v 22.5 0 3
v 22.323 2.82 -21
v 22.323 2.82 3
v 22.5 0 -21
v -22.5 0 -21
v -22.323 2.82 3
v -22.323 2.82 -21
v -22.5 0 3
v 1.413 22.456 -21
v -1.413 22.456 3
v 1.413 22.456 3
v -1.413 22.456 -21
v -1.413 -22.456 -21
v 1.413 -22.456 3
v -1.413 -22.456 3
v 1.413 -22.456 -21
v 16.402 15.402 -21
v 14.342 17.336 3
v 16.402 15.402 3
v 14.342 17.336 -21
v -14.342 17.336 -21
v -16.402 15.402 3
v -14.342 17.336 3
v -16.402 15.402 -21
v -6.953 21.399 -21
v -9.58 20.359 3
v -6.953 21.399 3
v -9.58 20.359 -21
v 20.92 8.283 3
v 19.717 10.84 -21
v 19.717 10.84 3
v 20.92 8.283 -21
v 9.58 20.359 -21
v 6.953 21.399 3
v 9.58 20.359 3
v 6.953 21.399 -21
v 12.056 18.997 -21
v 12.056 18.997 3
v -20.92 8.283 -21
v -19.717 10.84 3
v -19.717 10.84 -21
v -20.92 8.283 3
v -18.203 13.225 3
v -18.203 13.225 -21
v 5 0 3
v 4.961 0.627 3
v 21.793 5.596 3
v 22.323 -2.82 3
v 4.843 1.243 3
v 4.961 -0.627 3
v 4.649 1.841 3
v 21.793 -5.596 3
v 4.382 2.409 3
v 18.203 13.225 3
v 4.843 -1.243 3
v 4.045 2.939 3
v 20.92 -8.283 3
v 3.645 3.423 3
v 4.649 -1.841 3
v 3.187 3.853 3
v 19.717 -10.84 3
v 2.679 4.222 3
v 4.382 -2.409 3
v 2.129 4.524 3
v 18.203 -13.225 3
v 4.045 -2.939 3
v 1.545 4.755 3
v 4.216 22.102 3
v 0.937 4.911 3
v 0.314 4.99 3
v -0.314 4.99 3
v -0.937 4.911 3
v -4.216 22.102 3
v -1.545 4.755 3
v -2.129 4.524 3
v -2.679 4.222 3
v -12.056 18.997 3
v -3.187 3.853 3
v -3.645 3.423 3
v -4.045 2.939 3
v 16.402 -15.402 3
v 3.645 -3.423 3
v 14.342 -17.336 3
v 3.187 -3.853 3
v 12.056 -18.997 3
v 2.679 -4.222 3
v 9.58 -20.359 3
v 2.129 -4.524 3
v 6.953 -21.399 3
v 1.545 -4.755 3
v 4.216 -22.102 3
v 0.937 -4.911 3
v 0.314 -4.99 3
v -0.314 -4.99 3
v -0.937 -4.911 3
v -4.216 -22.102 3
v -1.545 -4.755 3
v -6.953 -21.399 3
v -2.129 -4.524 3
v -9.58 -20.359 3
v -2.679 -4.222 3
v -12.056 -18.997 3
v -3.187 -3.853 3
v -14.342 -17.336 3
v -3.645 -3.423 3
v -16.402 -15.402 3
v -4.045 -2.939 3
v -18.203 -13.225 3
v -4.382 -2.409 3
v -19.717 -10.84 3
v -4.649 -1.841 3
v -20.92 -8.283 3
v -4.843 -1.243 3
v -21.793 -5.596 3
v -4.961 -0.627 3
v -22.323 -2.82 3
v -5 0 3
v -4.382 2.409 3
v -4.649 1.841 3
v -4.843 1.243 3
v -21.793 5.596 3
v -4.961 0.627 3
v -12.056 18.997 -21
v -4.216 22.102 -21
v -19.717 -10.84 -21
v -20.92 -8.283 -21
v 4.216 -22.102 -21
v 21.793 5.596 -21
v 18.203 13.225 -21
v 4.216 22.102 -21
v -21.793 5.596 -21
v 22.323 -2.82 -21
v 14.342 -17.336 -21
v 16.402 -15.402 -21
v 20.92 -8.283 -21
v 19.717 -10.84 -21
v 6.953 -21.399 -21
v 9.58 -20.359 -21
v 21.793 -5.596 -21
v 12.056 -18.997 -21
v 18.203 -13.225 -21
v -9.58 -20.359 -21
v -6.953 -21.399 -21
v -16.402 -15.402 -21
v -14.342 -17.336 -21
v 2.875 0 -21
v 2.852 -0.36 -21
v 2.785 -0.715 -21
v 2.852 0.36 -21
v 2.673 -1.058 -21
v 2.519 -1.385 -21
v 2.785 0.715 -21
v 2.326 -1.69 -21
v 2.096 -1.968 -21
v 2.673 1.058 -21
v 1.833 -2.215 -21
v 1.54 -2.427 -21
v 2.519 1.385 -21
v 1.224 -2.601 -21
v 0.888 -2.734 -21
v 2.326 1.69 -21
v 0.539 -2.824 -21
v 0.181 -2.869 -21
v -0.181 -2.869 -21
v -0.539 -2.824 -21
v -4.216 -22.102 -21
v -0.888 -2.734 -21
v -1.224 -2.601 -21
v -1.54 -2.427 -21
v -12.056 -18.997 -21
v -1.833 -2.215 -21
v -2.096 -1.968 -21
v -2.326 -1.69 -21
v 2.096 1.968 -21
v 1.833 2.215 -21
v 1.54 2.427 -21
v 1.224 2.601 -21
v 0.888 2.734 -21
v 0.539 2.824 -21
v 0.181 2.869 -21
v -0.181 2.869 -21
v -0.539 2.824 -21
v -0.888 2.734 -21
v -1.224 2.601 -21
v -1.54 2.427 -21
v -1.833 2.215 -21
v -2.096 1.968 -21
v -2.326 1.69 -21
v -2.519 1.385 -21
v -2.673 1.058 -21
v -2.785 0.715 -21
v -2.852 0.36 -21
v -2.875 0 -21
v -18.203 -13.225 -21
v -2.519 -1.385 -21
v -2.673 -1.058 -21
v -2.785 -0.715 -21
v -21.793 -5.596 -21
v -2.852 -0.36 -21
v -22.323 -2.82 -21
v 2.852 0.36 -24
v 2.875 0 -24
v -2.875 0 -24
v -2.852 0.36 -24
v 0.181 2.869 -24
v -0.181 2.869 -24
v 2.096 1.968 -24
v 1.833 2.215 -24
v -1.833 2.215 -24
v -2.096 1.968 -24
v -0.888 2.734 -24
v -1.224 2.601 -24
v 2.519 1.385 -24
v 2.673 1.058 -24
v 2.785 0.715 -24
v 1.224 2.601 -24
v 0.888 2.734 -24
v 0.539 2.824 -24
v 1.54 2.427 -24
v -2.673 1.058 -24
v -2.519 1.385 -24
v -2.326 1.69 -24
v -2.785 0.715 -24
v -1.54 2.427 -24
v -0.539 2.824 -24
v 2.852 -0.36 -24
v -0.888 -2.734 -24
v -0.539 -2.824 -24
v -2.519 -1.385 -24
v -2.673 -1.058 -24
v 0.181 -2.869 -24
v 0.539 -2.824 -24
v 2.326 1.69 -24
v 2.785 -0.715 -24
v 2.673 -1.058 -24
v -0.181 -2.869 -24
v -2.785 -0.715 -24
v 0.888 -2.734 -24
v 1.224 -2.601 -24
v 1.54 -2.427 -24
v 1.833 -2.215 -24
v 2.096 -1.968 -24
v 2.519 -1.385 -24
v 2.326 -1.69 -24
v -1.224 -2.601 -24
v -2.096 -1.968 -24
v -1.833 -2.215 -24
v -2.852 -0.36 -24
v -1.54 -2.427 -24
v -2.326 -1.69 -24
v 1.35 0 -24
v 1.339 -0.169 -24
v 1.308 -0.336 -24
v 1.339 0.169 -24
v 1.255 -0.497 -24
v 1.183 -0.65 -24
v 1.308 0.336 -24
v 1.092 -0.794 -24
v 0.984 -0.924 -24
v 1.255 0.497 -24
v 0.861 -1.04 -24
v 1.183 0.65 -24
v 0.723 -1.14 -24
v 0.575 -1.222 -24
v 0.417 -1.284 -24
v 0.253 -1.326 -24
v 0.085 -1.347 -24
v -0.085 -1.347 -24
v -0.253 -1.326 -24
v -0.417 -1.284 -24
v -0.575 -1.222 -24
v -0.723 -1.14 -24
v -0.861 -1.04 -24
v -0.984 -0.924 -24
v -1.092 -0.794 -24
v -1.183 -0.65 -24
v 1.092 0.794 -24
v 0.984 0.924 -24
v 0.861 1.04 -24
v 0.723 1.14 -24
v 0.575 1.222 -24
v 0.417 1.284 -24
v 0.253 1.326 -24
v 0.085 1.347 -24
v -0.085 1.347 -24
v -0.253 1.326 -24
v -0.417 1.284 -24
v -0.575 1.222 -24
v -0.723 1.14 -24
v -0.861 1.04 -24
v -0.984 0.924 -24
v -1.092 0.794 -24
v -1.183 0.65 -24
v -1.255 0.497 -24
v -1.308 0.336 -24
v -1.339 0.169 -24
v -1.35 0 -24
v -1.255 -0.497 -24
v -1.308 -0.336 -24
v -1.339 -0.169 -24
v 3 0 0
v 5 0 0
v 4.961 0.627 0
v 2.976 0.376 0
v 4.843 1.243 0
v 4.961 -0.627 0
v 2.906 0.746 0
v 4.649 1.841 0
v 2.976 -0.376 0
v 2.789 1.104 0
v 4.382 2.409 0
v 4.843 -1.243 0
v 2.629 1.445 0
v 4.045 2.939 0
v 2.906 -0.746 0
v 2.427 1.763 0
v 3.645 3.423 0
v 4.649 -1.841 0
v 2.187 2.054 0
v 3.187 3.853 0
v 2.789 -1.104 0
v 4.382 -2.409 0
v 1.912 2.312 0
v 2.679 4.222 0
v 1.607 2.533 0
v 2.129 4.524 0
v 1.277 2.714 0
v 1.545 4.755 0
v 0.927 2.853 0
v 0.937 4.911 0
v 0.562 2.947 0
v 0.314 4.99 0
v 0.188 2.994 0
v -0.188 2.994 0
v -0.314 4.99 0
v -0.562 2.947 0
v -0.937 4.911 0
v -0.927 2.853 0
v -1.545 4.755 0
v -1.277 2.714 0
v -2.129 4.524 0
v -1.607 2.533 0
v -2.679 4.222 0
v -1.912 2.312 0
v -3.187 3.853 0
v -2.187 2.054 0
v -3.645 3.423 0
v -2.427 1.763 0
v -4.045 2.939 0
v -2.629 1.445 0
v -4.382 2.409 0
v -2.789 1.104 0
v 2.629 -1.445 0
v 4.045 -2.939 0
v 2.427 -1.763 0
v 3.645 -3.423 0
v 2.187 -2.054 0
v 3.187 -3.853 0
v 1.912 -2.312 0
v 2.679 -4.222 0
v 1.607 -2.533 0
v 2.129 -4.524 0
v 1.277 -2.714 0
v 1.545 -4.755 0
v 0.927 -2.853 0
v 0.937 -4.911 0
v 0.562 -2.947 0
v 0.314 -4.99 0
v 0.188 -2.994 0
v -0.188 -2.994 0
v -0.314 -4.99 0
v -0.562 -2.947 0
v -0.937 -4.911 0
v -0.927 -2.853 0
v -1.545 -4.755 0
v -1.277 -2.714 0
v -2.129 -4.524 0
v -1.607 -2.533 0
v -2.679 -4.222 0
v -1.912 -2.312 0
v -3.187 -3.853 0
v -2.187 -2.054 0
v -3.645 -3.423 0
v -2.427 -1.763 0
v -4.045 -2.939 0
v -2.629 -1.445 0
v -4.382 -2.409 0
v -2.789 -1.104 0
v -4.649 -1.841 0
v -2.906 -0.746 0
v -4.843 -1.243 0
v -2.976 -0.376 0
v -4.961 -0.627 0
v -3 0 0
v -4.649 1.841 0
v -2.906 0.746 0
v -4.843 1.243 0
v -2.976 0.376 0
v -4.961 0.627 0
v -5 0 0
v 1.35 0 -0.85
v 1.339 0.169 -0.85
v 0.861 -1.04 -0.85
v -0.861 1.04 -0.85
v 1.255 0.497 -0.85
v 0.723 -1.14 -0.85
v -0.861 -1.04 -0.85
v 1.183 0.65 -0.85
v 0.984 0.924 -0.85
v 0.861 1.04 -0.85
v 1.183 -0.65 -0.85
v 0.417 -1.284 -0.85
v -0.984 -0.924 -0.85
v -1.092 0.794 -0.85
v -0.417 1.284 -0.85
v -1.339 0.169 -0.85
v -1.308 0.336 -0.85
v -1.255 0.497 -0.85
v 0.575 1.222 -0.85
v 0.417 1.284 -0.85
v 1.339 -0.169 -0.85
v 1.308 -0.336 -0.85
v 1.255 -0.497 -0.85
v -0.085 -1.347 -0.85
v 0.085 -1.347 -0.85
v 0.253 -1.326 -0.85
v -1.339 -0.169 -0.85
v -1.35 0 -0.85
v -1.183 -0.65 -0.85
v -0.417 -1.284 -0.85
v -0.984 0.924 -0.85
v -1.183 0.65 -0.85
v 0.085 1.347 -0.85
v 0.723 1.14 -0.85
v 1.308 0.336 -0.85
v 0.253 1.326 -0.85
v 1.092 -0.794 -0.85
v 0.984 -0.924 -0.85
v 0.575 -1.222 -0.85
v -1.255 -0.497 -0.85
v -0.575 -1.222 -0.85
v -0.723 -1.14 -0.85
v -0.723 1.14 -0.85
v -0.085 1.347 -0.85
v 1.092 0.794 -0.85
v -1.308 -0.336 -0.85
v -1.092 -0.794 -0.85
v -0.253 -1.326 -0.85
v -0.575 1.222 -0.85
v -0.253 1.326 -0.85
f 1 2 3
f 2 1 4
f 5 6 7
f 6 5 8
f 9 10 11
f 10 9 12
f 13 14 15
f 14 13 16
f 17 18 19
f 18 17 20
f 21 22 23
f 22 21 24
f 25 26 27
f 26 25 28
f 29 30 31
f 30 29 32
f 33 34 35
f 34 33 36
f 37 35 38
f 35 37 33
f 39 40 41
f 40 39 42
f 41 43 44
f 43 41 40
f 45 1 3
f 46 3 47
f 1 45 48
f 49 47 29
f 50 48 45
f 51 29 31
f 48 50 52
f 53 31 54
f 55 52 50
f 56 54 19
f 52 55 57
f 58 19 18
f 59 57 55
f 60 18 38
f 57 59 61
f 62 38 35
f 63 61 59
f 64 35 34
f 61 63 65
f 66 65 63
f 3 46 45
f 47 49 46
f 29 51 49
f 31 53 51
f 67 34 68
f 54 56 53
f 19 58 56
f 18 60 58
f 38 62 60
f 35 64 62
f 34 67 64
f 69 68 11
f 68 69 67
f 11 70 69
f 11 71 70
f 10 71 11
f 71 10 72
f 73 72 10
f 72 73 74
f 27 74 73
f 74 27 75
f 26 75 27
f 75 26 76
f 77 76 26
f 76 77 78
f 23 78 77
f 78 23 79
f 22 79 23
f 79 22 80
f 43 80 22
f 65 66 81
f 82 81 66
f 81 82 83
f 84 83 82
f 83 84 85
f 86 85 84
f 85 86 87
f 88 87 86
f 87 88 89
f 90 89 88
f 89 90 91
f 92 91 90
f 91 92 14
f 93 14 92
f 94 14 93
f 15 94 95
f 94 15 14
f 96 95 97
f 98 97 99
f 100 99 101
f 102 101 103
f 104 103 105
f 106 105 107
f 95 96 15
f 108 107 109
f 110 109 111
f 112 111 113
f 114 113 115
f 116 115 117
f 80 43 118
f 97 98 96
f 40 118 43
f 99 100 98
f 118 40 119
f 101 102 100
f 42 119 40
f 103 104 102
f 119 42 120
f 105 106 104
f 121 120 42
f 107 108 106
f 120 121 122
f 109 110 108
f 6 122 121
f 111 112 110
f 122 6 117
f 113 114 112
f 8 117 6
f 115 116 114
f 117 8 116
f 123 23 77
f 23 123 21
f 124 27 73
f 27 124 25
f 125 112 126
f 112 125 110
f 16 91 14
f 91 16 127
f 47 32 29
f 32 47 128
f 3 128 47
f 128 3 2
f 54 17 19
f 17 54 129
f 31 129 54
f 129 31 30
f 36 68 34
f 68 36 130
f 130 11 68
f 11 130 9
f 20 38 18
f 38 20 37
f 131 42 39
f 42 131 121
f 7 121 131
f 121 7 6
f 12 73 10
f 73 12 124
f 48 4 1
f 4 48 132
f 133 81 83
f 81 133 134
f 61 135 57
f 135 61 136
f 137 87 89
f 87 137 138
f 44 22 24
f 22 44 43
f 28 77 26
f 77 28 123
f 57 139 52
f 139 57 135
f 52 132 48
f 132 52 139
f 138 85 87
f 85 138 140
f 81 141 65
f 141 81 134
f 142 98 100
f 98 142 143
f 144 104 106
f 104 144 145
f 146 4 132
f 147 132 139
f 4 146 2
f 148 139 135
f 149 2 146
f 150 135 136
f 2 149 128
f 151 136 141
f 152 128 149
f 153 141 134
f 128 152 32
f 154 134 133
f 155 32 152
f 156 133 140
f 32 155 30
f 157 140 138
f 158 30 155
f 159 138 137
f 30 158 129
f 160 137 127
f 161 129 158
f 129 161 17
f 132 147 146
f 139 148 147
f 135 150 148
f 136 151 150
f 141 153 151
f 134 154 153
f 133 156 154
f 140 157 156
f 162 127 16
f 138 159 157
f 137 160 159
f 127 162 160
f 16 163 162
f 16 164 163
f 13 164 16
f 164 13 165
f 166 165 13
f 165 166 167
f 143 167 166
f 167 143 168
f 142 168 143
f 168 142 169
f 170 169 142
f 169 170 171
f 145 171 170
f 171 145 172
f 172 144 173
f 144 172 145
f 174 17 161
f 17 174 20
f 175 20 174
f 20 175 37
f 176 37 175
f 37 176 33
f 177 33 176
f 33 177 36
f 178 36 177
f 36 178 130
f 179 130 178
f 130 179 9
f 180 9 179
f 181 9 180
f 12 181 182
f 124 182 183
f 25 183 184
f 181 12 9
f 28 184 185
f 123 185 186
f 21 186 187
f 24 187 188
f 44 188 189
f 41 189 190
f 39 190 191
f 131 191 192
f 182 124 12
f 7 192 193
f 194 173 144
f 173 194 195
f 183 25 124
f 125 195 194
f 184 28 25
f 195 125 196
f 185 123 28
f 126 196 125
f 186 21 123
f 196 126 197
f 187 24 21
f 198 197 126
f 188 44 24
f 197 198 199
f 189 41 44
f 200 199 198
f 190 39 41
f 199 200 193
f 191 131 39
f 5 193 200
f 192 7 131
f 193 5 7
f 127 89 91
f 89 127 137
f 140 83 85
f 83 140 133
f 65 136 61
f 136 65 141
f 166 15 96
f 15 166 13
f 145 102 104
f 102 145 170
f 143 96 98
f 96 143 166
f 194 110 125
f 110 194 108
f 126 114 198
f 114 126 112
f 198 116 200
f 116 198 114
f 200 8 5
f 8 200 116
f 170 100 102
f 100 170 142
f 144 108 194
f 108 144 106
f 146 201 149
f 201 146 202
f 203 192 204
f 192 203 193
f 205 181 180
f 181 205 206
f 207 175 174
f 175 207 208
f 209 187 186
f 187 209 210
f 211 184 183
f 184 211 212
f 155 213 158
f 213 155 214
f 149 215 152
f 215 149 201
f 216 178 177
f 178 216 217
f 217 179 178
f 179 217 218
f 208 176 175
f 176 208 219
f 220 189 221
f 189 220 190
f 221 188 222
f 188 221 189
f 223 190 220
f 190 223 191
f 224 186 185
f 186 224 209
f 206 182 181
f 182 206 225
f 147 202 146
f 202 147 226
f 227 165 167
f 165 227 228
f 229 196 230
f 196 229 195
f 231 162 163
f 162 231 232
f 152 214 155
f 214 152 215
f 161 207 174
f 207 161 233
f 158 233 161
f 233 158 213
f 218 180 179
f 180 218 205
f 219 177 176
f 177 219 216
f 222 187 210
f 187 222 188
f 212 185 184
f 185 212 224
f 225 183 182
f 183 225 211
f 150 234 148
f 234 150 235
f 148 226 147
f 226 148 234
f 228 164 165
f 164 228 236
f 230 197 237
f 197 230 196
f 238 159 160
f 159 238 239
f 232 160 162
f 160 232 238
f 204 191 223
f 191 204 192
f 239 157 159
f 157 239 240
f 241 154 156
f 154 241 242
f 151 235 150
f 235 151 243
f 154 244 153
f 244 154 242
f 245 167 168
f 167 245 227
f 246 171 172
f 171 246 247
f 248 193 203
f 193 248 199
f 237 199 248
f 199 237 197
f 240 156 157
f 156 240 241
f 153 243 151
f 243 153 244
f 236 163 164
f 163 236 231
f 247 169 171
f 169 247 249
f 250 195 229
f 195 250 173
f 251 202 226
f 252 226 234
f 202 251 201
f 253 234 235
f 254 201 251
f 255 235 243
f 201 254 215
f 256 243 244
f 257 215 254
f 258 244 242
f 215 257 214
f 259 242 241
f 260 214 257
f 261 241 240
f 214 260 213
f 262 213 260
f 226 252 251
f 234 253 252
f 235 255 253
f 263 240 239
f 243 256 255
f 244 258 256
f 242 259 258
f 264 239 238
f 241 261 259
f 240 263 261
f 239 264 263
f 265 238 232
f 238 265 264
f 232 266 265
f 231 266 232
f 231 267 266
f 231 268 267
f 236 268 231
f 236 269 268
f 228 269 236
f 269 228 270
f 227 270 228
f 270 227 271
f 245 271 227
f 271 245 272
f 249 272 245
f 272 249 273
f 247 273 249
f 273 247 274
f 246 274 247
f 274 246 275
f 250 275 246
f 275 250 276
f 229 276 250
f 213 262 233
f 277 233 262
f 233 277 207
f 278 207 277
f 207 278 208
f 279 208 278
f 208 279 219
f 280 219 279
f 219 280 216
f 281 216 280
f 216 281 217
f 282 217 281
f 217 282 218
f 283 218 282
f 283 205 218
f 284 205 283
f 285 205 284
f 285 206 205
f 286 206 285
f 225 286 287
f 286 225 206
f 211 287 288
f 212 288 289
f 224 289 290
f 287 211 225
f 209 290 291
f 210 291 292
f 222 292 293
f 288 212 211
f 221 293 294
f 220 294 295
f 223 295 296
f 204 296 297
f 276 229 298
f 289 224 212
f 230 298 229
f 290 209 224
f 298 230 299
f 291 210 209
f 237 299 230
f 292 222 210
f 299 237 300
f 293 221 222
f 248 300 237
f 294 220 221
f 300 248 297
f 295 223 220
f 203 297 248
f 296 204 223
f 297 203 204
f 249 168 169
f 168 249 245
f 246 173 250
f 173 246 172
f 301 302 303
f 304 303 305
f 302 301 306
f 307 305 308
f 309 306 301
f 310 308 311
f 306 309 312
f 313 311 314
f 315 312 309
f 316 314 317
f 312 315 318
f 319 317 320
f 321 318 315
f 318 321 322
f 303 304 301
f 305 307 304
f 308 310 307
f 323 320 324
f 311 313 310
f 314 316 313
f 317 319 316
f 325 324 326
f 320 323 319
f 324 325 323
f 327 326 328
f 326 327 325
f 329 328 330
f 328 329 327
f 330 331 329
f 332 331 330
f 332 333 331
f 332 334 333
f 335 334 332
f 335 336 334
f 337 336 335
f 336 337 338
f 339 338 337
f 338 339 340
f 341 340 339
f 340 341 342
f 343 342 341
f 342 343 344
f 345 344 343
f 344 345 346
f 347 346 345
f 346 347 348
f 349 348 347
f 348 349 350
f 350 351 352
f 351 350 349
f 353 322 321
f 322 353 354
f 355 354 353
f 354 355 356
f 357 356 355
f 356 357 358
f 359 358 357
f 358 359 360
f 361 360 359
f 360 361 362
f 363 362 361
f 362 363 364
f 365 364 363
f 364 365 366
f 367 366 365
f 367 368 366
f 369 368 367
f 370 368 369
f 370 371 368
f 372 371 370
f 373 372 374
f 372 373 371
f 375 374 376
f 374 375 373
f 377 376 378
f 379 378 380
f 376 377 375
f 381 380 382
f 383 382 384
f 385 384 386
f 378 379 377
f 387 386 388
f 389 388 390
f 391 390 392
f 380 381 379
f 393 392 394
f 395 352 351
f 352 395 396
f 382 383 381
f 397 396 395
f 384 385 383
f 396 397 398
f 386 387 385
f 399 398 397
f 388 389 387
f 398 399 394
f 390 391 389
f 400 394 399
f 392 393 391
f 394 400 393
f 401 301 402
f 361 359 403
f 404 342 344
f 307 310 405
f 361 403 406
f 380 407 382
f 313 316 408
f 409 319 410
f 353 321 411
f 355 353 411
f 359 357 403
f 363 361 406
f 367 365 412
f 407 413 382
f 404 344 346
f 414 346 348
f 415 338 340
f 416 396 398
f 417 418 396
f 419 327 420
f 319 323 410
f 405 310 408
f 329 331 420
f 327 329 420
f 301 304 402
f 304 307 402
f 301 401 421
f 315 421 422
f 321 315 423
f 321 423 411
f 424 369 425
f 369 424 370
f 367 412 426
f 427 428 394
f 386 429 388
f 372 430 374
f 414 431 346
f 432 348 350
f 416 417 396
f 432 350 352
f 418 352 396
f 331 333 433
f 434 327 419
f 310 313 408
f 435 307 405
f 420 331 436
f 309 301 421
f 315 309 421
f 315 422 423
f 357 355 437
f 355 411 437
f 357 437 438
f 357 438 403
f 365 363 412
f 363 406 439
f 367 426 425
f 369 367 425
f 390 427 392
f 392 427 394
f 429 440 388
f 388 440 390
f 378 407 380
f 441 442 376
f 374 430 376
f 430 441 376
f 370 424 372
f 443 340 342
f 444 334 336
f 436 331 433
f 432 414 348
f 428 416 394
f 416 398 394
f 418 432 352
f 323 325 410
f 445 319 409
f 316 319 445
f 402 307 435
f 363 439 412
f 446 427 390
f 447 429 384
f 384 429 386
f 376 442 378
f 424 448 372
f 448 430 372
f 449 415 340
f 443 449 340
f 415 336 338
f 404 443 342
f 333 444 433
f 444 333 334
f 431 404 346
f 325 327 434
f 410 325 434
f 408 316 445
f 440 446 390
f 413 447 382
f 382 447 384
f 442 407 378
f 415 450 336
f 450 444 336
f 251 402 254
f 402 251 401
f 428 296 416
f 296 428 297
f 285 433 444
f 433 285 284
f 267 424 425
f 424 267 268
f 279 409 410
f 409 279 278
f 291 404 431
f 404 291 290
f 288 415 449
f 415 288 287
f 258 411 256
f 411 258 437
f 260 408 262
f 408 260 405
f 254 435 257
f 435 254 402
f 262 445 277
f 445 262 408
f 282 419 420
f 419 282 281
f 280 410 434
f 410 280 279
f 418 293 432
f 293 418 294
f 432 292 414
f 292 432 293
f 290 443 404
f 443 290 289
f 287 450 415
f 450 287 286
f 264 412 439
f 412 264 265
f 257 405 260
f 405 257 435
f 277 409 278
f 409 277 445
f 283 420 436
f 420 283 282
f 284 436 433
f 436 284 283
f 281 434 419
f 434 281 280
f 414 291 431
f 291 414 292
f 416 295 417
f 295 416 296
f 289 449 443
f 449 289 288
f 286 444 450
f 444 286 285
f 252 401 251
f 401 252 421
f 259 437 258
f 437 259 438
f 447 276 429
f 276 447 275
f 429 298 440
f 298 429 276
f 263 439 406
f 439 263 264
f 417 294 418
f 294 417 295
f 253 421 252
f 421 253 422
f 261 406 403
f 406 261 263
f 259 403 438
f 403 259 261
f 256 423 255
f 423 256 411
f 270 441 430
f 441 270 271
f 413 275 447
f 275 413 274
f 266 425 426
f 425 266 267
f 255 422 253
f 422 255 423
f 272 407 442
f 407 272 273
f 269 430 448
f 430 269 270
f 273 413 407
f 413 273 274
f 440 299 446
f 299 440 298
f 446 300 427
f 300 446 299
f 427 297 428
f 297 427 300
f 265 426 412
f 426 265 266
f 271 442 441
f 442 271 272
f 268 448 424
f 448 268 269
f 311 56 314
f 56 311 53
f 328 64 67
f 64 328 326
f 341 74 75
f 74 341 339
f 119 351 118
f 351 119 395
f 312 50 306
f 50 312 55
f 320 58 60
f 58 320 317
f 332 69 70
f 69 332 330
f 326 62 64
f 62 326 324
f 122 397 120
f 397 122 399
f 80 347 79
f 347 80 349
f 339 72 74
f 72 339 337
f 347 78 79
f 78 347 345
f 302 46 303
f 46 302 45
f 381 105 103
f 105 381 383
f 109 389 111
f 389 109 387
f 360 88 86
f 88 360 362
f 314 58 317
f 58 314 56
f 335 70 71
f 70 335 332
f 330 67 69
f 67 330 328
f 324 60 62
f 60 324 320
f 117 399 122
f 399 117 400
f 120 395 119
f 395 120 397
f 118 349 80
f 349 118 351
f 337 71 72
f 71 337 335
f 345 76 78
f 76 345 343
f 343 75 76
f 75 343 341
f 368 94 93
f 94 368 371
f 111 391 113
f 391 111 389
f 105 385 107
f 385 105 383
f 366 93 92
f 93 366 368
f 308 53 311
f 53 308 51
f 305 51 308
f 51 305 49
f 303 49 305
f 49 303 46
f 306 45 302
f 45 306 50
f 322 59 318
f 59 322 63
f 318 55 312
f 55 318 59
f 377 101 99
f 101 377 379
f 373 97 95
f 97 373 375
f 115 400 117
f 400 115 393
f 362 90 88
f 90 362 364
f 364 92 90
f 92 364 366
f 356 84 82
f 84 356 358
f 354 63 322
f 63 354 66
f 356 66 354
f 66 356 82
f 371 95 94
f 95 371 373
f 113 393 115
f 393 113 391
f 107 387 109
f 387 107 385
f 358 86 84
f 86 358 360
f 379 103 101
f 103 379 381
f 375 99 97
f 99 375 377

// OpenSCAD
$fn = 50;


difference() {
	union() {
		translate(v = [0, 0, -21.0000000000]) {
			cylinder(h = 24, r = 22.5000000000);
		}
		#translate(v = [0, 0, -24.0000000000]) {
			cylinder(h = 24, r = 2.8750000000);
		}
	}
	union() {
		translate(v = [0, 0, 0]) {
			rotate(a = [0, 0, 0]) {
				difference() {
					union() {
						translate(v = [0, 0, -24.0000000000]) {
							cylinder(h = 24, r = 1.0000000000);
						}
						translate(v = [0, 0, -0.8500000000]) {
							cylinder(h = 0.8500000000, r1 = 1.3500000000, r2 = 3.0000000000);
						}
						translate(v = [0, 0, -24.0000000000]) {
							cylinder(h = 24, r = 1.3500000000);
						}
						translate(v = [0, 0, -24.0000000000]) {
							cylinder(h = 24, r = 1.0000000000);
						}
					}
					union();
				}
			}
		}
		#cylinder(h = 3, r = 5.0000000000);
	}
}
